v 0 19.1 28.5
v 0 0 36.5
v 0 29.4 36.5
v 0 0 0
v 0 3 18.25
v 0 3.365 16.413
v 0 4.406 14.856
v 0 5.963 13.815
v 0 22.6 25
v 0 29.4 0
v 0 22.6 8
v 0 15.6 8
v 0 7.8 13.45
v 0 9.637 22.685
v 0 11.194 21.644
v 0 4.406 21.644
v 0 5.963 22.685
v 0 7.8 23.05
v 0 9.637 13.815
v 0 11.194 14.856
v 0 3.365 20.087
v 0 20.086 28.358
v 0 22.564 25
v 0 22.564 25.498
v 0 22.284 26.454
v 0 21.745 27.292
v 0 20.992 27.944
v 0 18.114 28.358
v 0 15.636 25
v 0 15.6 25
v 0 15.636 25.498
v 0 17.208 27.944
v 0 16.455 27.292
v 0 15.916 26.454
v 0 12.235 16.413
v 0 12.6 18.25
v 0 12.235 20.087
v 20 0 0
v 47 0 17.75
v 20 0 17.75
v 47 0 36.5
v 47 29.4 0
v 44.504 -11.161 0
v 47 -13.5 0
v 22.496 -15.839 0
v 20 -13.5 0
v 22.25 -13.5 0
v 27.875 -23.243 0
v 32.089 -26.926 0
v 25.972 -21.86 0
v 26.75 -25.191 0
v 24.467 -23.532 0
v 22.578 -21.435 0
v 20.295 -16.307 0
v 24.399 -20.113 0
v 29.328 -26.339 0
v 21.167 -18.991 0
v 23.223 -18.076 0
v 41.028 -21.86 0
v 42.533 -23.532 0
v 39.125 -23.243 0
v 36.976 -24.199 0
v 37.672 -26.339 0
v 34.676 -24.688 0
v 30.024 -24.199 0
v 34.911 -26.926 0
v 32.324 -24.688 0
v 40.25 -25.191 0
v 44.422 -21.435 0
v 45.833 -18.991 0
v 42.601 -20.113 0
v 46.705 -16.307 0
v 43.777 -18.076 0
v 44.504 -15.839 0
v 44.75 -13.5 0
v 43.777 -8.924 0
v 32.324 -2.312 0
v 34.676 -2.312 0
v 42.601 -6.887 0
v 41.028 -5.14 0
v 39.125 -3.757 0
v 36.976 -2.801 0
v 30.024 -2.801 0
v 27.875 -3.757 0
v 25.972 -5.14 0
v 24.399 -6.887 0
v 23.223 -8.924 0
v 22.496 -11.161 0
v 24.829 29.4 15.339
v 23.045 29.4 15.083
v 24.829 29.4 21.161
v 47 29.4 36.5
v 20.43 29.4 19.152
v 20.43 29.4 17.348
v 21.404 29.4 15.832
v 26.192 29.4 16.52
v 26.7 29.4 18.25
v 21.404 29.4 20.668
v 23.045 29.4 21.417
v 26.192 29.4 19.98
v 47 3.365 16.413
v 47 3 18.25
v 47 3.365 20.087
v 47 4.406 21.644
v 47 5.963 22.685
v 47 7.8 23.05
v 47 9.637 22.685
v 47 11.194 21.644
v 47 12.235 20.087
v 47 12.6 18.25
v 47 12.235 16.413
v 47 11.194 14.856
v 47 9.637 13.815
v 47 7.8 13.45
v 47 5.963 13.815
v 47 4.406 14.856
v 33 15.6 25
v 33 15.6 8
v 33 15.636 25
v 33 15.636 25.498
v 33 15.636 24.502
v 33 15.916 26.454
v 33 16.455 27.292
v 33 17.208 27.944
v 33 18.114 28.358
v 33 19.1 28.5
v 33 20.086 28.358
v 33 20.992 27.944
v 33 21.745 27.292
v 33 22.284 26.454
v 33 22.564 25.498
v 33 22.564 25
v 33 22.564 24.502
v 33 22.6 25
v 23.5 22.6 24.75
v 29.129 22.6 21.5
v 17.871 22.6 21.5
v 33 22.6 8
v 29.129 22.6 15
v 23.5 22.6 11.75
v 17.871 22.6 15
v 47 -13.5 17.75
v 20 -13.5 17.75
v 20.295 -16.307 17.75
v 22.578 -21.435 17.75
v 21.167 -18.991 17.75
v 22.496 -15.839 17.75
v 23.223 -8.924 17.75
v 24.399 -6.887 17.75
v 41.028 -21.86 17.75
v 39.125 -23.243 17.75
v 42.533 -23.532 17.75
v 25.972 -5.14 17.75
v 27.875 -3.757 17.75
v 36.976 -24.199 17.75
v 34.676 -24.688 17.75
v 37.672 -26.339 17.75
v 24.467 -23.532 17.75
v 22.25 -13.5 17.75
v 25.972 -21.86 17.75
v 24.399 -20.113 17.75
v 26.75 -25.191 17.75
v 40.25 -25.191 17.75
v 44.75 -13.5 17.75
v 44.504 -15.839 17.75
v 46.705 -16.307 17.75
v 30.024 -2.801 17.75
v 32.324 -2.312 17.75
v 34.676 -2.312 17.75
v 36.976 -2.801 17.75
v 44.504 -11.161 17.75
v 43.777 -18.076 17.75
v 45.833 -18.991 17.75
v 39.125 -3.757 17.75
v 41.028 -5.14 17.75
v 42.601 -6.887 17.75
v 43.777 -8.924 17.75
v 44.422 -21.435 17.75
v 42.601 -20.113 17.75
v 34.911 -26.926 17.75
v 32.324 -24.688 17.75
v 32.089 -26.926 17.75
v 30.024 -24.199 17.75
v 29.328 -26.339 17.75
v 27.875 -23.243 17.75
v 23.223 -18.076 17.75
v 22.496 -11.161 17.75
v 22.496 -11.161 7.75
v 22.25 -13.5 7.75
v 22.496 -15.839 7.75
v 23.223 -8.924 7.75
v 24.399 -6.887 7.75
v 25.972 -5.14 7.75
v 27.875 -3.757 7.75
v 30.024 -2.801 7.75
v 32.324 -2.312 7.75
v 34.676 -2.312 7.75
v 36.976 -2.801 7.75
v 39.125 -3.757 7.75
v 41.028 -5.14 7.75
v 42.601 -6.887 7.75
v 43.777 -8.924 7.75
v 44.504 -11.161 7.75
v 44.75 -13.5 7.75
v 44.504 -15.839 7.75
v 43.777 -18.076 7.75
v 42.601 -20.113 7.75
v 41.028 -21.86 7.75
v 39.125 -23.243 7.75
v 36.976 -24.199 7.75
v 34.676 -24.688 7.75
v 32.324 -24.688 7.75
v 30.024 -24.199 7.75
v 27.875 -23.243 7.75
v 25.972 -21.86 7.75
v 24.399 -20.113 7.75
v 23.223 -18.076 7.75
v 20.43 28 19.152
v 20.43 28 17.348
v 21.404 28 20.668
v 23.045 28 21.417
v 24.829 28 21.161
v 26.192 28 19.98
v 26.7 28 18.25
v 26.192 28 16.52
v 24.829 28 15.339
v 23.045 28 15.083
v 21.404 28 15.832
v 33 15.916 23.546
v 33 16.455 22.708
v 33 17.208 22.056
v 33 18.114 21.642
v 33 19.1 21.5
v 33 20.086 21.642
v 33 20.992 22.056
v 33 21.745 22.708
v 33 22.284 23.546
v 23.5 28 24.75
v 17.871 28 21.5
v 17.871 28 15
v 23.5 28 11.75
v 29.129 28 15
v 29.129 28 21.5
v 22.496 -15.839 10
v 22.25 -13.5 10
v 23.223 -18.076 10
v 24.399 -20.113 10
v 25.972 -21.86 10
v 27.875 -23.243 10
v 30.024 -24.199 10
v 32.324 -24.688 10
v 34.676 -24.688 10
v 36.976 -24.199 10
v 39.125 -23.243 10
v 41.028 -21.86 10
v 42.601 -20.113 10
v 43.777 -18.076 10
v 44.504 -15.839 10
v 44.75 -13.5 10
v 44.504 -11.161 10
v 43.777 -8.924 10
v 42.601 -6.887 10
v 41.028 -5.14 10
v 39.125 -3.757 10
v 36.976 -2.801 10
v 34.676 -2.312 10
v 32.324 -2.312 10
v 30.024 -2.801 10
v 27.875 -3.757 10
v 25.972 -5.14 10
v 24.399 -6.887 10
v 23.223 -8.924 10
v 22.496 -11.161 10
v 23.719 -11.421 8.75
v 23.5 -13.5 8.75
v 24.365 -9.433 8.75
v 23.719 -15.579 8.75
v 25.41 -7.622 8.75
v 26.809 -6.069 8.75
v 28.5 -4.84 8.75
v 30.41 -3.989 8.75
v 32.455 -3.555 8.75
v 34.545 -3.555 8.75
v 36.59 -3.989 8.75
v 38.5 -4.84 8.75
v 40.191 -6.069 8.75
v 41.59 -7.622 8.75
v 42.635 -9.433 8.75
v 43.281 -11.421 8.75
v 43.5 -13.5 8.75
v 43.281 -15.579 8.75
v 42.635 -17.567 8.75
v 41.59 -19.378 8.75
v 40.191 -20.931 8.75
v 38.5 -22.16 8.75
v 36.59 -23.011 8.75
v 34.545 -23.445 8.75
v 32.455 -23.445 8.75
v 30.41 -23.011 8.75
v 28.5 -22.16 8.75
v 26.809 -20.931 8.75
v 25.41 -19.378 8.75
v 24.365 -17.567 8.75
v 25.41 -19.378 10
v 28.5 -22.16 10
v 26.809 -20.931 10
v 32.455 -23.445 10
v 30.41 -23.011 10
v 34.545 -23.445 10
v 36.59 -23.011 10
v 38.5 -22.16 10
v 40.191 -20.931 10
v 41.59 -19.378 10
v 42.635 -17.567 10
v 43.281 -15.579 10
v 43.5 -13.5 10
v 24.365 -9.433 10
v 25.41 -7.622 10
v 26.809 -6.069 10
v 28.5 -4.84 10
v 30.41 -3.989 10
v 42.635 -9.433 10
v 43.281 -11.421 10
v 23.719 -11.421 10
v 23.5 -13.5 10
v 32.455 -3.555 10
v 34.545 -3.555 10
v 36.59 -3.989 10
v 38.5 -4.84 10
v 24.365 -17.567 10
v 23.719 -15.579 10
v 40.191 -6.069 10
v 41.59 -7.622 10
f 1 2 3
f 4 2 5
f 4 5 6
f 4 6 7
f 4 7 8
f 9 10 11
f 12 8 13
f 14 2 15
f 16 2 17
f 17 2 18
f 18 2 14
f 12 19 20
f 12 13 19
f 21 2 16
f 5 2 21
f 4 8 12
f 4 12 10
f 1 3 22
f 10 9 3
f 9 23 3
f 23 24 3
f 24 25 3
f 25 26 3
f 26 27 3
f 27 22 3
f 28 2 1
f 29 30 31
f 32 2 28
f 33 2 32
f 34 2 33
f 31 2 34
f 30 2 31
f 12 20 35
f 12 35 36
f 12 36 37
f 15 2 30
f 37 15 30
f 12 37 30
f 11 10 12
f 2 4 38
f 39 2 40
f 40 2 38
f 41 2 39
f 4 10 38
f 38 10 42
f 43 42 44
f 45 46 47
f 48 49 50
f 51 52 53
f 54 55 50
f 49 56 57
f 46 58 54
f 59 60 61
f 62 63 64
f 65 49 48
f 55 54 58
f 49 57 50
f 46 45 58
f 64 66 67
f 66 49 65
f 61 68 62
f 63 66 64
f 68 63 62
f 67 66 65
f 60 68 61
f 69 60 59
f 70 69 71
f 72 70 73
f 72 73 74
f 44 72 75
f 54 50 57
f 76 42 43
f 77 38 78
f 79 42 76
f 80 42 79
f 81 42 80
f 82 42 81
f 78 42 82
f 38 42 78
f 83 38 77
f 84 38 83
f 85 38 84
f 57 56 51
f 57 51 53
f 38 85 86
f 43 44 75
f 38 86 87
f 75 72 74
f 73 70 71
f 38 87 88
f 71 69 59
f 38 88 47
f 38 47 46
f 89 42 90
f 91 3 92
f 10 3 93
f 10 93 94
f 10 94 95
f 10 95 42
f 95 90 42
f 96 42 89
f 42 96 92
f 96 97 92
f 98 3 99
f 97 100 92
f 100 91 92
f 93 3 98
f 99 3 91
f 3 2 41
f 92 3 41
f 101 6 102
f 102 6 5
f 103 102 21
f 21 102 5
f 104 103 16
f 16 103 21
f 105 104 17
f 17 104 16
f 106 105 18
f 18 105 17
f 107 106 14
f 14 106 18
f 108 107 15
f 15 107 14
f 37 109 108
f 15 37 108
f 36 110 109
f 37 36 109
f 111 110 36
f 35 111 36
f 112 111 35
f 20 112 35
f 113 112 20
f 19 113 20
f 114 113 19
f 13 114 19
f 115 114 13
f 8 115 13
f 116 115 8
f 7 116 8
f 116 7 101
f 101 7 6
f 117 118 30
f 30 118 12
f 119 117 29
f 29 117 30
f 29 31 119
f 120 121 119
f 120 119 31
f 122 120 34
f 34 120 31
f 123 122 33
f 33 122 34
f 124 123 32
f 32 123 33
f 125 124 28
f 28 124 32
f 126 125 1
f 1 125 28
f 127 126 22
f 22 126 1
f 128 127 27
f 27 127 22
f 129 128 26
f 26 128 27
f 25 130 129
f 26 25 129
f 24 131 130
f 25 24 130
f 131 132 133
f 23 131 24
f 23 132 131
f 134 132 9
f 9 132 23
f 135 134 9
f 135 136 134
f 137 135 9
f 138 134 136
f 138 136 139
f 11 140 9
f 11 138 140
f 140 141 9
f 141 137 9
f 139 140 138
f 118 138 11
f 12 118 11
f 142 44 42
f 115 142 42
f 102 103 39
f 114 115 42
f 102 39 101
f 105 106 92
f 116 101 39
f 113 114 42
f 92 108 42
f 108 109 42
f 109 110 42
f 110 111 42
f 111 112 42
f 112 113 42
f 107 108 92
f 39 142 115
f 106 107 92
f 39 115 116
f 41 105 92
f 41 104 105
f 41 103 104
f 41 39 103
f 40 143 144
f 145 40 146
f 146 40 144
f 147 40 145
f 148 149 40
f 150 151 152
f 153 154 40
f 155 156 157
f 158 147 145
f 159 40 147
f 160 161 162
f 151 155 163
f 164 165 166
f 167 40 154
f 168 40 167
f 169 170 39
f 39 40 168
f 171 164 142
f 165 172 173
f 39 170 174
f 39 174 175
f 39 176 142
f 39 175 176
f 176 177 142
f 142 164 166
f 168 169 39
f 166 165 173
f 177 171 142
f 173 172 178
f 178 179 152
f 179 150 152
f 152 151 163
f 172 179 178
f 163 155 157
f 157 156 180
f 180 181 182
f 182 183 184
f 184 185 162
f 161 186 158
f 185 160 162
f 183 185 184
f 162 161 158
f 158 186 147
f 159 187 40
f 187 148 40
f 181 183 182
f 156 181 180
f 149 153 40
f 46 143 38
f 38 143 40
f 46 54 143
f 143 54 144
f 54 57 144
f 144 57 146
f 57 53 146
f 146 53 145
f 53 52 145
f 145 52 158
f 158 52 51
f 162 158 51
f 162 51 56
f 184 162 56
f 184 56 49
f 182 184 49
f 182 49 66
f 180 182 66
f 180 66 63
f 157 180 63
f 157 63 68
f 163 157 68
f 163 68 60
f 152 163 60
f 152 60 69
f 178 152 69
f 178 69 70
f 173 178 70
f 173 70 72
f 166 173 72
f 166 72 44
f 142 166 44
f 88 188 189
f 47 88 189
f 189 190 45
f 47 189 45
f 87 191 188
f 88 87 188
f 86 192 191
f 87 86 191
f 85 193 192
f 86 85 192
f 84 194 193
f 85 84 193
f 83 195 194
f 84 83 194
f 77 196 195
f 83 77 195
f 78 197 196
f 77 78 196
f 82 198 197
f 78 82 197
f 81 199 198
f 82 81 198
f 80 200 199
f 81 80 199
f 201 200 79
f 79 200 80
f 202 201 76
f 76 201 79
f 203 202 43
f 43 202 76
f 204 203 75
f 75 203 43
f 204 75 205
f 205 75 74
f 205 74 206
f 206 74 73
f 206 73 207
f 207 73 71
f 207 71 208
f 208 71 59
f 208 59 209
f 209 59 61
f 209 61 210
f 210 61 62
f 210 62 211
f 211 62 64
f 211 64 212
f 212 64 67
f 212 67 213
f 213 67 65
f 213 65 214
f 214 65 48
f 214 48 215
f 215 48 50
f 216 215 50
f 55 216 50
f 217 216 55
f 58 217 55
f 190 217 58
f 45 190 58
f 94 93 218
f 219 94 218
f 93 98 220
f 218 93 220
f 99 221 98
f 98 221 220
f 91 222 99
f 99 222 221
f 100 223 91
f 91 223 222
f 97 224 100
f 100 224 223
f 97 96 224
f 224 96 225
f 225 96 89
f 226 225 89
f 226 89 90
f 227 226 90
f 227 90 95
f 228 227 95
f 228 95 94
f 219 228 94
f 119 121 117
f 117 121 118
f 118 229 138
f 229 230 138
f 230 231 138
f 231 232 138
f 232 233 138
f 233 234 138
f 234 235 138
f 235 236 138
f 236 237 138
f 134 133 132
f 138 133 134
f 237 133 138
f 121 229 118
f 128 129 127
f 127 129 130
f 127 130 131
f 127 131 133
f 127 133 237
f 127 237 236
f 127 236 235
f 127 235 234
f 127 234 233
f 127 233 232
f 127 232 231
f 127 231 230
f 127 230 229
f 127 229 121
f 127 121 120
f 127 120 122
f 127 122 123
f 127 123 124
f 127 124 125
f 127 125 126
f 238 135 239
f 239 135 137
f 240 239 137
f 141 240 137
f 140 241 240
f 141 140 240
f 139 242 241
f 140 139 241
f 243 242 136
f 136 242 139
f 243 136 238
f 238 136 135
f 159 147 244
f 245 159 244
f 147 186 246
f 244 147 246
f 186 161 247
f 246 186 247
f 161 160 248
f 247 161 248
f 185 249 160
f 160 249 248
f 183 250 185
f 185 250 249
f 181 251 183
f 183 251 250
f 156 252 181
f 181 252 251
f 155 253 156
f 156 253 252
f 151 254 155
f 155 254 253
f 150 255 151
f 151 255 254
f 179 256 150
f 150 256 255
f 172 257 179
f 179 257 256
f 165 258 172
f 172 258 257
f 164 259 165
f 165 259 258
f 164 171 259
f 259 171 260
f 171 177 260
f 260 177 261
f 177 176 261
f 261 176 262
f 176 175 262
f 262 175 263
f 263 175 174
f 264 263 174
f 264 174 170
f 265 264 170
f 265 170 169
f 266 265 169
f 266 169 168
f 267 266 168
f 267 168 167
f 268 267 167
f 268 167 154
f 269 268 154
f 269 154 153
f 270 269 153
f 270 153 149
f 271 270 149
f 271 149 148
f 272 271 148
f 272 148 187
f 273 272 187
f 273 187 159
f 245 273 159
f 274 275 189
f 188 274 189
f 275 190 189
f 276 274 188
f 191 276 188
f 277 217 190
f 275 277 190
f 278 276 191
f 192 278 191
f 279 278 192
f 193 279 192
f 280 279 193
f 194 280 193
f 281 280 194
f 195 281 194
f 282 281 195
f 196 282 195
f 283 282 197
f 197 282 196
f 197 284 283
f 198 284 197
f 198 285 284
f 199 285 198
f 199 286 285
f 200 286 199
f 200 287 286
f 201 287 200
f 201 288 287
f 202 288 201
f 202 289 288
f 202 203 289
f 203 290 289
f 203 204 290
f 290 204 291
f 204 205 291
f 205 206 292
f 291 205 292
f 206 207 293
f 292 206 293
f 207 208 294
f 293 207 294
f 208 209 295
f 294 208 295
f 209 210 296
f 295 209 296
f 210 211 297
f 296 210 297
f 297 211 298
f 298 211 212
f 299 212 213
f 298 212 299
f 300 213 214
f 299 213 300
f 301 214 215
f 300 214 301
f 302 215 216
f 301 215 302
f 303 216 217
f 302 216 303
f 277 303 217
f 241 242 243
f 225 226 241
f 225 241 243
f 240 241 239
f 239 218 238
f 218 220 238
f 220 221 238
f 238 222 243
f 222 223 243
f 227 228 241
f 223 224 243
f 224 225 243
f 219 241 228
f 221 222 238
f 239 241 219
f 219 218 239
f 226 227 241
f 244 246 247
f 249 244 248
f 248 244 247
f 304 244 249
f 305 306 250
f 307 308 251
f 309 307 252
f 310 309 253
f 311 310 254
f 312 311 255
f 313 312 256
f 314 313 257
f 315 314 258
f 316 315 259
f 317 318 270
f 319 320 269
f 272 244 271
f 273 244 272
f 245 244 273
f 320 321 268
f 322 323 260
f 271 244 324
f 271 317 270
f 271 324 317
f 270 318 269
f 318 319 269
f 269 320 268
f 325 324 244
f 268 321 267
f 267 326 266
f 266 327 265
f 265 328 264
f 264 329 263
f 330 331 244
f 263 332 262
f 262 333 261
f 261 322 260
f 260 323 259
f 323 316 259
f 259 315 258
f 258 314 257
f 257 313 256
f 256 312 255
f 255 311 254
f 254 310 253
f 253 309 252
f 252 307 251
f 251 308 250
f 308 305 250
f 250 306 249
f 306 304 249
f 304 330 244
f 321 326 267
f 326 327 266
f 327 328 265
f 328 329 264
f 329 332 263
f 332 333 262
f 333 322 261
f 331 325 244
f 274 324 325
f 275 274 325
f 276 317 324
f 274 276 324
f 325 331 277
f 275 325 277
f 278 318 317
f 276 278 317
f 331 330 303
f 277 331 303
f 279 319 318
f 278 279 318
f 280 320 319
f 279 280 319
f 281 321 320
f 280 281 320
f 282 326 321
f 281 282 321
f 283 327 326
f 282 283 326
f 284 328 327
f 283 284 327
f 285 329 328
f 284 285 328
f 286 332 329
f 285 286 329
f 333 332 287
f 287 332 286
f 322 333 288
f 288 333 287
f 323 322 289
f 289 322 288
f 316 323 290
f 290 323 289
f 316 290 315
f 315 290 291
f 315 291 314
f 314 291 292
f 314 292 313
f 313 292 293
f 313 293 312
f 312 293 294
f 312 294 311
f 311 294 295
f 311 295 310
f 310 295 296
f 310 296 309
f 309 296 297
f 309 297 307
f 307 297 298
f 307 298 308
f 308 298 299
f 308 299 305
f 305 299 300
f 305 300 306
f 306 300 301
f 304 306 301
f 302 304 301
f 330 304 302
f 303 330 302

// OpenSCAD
// file: parameters.scad
//
// Star tracker parameters
// Philippe Chrétien (2012)
// philippe.chretien.gmail.com
//

// Threaded rod
t_rod_out_radius = 4.8; //mm

// Skate bearing 608
bearing_out_radius = 11.25; //mm
bearing_thickness = 7.75; //mm

// M3 bolts
m3_out_radius = 1.5; //mm

// 1/4 nut
nut_1_4_radius = 6.5; //mm
nut_1_4_thickness = 5.5; //mm
// main file
include <parameters.scad>

base_x = 47.0;
base_y = 29.4;
base_z = 36.5;

pivot_x = 27.0;
pivot_y = pivot_x/2;
pivot_z = 17.75;

bearing_shoulder = 1.25; 
bearing_shoulder_h = 1.0; 

slot_width = 7;
slot_heigth = 17;
slot_depth = 33;

slot_y = 15.6;
slot_z = 8;

buffer = 0.01;

module slot()
{
	union()
	{
		
		cube([slot_depth,slot_width,slot_heigth]);

		translate([0,slot_width/2,slot_heigth])
			rotate(a=90, v=[0,1,0])
				cylinder(r=slot_width/2, h=slot_depth, $fs=0.5);
	}
}

module nut_1_4() 
{ 
	linear_extrude(height=nut_1_4_thickness)
		circle(r=nut_1_4_radius, $fn = 6);
}

difference()
{
	// Piece square stock
	union()
	{
		cube([base_x,base_y,base_z]);
	
		translate([base_x-pivot_x,-1*pivot_y,0])
			cube([pivot_x,pivot_y,pivot_z]);
	
		translate([base_x-(pivot_x/2),-1*pivot_y,0])
			cylinder(r=pivot_y, h=pivot_z);
	}

	// Top bearing hole
	translate([base_x-(pivot_x/2),-1*pivot_y,pivot_z-bearing_thickness])
		cylinder(r=bearing_out_radius, h=bearing_thickness);

	// Bottom bearing hole
	translate([base_x-(pivot_x/2),-1*pivot_y,0])
		cylinder(r=bearing_out_radius, h=bearing_thickness);

	// Bearing shoulder center hole
	translate([base_x-(pivot_x/2),-1*pivot_y,0])
		cylinder(r=bearing_out_radius-bearing_shoulder, h=pivot_z);

	// Bearing shoulder chamfer
	translate([base_x-(pivot_x/2),-1*pivot_y,bearing_thickness])
		cylinder(r1=bearing_out_radius, r2=bearing_out_radius-bearing_shoulder, h=bearing_shoulder_h);

	// Main rod hole
	translate([-1*buffer,t_rod_out_radius+3,18.25])
		rotate(a=90, v=[0,1,0])
			cylinder(r=t_rod_out_radius, h=base_x+2*buffer);

	// Nut slot
	translate([0,slot_y,slot_z])
		slot();	

	// 1/4" nut hole
	translate([base_x/2,slot_width+slot_y+nut_1_4_thickness-0.1, base_z/2])
		rotate(a=90, v=[1,0,0])
			rotate(a=30, v=[0,0,1])
				nut_1_4();

	// Tripod 1/4" rod hole
	translate([base_x/2,base_y+buffer, base_z/2])
		rotate(a=90, v=[1,0,0])
			cylinder(r=3.2, h=base_y-slot_y-slot_width+2*buffer);
}
